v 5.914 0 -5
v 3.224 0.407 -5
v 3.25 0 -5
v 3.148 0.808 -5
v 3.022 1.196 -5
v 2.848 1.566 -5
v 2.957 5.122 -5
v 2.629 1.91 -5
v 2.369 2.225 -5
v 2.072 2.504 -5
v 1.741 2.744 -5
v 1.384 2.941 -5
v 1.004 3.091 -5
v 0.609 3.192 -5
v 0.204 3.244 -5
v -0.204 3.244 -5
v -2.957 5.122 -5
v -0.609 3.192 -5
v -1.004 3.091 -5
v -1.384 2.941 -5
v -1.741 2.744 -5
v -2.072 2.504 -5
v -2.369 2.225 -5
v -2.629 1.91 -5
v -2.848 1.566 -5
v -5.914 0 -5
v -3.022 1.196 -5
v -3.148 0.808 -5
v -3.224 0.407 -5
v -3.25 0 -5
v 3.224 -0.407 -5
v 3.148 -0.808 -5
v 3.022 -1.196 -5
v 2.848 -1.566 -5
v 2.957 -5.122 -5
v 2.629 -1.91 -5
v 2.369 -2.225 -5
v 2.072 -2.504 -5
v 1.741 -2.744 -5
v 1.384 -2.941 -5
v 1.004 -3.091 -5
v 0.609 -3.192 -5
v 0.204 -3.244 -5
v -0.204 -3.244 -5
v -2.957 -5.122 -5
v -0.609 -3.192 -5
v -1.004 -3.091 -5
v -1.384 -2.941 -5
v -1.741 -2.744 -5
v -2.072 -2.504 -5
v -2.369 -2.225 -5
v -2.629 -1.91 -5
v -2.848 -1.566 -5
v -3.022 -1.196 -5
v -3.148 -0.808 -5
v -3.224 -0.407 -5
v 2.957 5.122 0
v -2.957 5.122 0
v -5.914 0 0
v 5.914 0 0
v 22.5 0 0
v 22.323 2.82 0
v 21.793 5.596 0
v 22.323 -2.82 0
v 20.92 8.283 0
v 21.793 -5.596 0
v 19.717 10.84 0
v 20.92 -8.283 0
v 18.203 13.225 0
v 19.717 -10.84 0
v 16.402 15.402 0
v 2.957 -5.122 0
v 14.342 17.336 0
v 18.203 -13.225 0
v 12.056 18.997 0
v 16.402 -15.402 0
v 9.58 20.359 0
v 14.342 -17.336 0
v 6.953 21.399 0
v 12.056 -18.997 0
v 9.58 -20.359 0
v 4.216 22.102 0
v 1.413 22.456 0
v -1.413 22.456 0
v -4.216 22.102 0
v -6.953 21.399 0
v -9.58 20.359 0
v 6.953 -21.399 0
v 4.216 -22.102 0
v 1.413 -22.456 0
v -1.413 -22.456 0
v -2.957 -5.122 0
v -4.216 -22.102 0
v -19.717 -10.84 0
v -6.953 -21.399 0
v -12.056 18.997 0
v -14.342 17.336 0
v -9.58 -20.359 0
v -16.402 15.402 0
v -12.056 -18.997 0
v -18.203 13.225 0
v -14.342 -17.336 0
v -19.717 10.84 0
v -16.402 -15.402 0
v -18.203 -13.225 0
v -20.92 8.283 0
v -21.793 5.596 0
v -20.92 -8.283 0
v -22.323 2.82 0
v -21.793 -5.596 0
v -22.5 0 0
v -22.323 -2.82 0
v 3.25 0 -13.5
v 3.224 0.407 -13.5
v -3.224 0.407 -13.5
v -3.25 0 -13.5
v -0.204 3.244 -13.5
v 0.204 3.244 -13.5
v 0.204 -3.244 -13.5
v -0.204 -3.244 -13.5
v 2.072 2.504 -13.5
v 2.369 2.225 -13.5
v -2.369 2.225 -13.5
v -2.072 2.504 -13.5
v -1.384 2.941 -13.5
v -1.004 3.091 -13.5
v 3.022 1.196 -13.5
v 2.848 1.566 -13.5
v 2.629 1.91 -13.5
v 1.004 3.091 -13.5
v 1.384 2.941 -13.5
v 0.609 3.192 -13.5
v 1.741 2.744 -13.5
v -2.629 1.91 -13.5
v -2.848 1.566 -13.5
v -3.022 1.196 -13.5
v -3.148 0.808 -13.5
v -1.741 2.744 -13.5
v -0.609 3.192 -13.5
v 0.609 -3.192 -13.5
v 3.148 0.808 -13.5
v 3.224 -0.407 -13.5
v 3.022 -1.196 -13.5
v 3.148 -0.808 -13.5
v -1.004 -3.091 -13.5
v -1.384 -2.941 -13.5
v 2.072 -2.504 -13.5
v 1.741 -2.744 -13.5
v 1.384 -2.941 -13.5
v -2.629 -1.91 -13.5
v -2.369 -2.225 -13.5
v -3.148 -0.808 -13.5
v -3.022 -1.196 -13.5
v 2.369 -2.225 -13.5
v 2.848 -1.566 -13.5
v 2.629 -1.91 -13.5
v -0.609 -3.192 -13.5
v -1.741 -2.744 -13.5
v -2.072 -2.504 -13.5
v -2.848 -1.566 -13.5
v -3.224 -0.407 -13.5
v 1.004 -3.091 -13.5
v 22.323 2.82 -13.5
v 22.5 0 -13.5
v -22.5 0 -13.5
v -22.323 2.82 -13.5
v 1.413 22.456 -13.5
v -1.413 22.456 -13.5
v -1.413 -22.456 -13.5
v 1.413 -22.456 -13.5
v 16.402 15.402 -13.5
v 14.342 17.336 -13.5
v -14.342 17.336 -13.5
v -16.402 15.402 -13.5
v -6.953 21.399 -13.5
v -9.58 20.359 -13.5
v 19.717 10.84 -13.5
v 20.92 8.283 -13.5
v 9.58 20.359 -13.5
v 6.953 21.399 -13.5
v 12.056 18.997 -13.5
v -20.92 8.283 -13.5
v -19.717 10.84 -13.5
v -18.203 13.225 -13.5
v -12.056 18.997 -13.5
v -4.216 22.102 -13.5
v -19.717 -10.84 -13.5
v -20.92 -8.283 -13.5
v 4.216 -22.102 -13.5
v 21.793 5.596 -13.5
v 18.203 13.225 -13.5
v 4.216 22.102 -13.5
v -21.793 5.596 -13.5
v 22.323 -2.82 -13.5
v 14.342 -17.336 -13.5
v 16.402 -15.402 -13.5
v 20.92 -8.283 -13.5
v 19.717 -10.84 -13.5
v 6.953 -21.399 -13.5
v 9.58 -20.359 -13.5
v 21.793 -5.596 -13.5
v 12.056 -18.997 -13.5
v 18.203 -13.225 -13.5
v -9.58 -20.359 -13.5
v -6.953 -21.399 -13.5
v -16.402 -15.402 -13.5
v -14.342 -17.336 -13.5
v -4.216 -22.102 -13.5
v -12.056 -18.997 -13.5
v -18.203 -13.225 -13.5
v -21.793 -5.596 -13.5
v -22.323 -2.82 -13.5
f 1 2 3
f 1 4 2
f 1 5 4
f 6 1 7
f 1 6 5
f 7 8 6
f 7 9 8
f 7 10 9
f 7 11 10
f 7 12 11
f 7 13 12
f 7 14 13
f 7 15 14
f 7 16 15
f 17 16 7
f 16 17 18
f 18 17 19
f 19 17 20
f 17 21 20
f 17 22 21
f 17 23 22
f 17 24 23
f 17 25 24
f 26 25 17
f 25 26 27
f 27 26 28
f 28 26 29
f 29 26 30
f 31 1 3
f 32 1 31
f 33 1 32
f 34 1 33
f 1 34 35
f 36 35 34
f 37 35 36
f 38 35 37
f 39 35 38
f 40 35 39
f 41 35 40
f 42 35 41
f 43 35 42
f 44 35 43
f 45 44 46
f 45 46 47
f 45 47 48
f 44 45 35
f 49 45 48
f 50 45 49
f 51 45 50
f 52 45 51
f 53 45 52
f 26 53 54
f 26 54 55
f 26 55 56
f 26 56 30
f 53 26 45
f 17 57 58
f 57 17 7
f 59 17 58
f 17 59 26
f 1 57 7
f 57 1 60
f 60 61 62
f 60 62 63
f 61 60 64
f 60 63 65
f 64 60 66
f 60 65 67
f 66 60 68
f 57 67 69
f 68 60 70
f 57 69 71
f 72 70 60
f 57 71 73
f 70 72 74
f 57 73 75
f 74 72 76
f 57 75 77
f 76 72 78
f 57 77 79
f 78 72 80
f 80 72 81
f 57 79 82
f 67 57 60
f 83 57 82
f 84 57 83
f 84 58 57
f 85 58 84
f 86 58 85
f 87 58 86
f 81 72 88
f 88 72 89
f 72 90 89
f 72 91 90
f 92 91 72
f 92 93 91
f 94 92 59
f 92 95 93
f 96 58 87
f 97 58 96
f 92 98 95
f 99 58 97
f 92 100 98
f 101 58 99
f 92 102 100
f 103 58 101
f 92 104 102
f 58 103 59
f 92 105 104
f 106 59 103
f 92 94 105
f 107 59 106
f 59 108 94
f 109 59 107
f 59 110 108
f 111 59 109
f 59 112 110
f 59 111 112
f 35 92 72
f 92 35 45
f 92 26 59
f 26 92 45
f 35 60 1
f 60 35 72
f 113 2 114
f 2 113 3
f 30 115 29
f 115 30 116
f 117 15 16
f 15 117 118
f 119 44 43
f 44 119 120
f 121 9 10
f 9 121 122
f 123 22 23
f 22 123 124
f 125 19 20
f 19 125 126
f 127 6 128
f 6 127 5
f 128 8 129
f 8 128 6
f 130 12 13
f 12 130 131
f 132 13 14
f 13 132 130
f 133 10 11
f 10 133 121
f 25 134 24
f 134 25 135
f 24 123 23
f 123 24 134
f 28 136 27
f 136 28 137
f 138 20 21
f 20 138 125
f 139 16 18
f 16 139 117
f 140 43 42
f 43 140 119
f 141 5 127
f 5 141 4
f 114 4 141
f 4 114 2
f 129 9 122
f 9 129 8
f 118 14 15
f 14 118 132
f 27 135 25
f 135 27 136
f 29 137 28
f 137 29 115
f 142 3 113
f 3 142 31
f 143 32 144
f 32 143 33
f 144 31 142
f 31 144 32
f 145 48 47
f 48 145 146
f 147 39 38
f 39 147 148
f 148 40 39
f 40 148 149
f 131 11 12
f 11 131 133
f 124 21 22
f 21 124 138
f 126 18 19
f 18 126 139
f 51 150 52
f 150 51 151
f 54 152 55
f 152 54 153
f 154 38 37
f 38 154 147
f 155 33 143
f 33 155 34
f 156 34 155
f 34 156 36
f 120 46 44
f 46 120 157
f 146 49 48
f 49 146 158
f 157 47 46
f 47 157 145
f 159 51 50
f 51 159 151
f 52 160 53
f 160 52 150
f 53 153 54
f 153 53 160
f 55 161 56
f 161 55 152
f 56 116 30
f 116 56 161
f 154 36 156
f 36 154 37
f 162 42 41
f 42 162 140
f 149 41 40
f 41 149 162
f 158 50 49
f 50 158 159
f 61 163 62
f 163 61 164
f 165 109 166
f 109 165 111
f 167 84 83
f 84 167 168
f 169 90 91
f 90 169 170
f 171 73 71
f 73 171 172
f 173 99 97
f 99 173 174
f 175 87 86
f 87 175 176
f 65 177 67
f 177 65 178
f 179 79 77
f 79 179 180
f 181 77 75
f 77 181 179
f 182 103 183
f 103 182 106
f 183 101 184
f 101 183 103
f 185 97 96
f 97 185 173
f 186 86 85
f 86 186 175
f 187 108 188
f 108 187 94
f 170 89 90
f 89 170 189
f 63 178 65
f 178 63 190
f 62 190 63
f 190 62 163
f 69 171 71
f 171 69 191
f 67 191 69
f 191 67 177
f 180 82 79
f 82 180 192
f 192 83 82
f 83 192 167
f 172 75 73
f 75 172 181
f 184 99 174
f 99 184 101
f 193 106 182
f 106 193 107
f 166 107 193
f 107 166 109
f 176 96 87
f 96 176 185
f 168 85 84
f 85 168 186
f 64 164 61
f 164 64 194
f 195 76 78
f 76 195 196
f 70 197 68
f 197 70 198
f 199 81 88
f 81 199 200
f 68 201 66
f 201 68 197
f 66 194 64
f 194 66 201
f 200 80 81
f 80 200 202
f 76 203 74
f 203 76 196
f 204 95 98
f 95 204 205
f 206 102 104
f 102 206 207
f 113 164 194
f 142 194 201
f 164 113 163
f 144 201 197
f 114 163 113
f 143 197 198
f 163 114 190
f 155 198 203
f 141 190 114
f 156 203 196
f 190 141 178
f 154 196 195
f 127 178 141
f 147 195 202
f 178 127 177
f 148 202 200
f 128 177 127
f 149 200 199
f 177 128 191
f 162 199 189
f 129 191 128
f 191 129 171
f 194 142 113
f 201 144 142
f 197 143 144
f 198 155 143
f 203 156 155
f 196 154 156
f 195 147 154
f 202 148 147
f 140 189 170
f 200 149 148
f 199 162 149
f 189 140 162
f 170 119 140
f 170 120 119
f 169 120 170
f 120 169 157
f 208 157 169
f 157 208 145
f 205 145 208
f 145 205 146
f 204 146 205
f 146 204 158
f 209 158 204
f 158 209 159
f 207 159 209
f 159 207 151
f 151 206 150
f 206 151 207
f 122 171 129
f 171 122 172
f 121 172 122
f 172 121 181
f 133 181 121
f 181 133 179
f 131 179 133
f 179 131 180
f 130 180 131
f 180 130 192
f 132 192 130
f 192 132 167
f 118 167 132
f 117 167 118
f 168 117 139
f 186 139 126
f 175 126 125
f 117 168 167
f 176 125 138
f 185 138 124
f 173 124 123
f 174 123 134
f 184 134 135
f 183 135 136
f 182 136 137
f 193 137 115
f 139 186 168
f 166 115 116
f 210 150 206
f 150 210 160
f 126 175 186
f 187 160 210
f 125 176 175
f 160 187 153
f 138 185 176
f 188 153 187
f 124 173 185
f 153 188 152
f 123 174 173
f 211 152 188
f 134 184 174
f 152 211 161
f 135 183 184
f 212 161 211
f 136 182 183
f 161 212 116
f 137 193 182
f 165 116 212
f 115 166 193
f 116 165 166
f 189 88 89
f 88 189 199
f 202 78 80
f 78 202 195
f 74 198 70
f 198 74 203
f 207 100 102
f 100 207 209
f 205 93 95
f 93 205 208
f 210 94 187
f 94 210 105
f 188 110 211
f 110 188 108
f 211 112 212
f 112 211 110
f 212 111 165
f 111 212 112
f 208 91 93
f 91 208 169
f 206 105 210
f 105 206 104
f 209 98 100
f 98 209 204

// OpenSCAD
$fn = 50;


difference() {
	union() {
		translate(v = [0, 0, -13.5000000000]) {
			cylinder(h = 13.5000000000, r = 22.5000000000);
		}
	}
	union() {
		translate(v = [0, 0, 0]) {
			rotate(a = [0, 0, 0]) {
				difference() {
					union() {
						translate(v = [0, 0, -5]) {
							linear_extrude(height = 5) {
								polygon(points = [[5.9142500000, 0.0000000000], [2.9571250000, 5.1218907443], [-2.9571250000, 5.1218907443], [-5.9142500000, 0.0000000000], [-2.9571250000, -5.1218907443], [2.9571250000, -5.1218907443]]);
							}
						}
					}
					union();
				}
			}
		}
		#translate(v = [0, 0, -100.0000000000]) {
			cylinder(h = 200, r = 3.2500000000);
		}
	}
}
